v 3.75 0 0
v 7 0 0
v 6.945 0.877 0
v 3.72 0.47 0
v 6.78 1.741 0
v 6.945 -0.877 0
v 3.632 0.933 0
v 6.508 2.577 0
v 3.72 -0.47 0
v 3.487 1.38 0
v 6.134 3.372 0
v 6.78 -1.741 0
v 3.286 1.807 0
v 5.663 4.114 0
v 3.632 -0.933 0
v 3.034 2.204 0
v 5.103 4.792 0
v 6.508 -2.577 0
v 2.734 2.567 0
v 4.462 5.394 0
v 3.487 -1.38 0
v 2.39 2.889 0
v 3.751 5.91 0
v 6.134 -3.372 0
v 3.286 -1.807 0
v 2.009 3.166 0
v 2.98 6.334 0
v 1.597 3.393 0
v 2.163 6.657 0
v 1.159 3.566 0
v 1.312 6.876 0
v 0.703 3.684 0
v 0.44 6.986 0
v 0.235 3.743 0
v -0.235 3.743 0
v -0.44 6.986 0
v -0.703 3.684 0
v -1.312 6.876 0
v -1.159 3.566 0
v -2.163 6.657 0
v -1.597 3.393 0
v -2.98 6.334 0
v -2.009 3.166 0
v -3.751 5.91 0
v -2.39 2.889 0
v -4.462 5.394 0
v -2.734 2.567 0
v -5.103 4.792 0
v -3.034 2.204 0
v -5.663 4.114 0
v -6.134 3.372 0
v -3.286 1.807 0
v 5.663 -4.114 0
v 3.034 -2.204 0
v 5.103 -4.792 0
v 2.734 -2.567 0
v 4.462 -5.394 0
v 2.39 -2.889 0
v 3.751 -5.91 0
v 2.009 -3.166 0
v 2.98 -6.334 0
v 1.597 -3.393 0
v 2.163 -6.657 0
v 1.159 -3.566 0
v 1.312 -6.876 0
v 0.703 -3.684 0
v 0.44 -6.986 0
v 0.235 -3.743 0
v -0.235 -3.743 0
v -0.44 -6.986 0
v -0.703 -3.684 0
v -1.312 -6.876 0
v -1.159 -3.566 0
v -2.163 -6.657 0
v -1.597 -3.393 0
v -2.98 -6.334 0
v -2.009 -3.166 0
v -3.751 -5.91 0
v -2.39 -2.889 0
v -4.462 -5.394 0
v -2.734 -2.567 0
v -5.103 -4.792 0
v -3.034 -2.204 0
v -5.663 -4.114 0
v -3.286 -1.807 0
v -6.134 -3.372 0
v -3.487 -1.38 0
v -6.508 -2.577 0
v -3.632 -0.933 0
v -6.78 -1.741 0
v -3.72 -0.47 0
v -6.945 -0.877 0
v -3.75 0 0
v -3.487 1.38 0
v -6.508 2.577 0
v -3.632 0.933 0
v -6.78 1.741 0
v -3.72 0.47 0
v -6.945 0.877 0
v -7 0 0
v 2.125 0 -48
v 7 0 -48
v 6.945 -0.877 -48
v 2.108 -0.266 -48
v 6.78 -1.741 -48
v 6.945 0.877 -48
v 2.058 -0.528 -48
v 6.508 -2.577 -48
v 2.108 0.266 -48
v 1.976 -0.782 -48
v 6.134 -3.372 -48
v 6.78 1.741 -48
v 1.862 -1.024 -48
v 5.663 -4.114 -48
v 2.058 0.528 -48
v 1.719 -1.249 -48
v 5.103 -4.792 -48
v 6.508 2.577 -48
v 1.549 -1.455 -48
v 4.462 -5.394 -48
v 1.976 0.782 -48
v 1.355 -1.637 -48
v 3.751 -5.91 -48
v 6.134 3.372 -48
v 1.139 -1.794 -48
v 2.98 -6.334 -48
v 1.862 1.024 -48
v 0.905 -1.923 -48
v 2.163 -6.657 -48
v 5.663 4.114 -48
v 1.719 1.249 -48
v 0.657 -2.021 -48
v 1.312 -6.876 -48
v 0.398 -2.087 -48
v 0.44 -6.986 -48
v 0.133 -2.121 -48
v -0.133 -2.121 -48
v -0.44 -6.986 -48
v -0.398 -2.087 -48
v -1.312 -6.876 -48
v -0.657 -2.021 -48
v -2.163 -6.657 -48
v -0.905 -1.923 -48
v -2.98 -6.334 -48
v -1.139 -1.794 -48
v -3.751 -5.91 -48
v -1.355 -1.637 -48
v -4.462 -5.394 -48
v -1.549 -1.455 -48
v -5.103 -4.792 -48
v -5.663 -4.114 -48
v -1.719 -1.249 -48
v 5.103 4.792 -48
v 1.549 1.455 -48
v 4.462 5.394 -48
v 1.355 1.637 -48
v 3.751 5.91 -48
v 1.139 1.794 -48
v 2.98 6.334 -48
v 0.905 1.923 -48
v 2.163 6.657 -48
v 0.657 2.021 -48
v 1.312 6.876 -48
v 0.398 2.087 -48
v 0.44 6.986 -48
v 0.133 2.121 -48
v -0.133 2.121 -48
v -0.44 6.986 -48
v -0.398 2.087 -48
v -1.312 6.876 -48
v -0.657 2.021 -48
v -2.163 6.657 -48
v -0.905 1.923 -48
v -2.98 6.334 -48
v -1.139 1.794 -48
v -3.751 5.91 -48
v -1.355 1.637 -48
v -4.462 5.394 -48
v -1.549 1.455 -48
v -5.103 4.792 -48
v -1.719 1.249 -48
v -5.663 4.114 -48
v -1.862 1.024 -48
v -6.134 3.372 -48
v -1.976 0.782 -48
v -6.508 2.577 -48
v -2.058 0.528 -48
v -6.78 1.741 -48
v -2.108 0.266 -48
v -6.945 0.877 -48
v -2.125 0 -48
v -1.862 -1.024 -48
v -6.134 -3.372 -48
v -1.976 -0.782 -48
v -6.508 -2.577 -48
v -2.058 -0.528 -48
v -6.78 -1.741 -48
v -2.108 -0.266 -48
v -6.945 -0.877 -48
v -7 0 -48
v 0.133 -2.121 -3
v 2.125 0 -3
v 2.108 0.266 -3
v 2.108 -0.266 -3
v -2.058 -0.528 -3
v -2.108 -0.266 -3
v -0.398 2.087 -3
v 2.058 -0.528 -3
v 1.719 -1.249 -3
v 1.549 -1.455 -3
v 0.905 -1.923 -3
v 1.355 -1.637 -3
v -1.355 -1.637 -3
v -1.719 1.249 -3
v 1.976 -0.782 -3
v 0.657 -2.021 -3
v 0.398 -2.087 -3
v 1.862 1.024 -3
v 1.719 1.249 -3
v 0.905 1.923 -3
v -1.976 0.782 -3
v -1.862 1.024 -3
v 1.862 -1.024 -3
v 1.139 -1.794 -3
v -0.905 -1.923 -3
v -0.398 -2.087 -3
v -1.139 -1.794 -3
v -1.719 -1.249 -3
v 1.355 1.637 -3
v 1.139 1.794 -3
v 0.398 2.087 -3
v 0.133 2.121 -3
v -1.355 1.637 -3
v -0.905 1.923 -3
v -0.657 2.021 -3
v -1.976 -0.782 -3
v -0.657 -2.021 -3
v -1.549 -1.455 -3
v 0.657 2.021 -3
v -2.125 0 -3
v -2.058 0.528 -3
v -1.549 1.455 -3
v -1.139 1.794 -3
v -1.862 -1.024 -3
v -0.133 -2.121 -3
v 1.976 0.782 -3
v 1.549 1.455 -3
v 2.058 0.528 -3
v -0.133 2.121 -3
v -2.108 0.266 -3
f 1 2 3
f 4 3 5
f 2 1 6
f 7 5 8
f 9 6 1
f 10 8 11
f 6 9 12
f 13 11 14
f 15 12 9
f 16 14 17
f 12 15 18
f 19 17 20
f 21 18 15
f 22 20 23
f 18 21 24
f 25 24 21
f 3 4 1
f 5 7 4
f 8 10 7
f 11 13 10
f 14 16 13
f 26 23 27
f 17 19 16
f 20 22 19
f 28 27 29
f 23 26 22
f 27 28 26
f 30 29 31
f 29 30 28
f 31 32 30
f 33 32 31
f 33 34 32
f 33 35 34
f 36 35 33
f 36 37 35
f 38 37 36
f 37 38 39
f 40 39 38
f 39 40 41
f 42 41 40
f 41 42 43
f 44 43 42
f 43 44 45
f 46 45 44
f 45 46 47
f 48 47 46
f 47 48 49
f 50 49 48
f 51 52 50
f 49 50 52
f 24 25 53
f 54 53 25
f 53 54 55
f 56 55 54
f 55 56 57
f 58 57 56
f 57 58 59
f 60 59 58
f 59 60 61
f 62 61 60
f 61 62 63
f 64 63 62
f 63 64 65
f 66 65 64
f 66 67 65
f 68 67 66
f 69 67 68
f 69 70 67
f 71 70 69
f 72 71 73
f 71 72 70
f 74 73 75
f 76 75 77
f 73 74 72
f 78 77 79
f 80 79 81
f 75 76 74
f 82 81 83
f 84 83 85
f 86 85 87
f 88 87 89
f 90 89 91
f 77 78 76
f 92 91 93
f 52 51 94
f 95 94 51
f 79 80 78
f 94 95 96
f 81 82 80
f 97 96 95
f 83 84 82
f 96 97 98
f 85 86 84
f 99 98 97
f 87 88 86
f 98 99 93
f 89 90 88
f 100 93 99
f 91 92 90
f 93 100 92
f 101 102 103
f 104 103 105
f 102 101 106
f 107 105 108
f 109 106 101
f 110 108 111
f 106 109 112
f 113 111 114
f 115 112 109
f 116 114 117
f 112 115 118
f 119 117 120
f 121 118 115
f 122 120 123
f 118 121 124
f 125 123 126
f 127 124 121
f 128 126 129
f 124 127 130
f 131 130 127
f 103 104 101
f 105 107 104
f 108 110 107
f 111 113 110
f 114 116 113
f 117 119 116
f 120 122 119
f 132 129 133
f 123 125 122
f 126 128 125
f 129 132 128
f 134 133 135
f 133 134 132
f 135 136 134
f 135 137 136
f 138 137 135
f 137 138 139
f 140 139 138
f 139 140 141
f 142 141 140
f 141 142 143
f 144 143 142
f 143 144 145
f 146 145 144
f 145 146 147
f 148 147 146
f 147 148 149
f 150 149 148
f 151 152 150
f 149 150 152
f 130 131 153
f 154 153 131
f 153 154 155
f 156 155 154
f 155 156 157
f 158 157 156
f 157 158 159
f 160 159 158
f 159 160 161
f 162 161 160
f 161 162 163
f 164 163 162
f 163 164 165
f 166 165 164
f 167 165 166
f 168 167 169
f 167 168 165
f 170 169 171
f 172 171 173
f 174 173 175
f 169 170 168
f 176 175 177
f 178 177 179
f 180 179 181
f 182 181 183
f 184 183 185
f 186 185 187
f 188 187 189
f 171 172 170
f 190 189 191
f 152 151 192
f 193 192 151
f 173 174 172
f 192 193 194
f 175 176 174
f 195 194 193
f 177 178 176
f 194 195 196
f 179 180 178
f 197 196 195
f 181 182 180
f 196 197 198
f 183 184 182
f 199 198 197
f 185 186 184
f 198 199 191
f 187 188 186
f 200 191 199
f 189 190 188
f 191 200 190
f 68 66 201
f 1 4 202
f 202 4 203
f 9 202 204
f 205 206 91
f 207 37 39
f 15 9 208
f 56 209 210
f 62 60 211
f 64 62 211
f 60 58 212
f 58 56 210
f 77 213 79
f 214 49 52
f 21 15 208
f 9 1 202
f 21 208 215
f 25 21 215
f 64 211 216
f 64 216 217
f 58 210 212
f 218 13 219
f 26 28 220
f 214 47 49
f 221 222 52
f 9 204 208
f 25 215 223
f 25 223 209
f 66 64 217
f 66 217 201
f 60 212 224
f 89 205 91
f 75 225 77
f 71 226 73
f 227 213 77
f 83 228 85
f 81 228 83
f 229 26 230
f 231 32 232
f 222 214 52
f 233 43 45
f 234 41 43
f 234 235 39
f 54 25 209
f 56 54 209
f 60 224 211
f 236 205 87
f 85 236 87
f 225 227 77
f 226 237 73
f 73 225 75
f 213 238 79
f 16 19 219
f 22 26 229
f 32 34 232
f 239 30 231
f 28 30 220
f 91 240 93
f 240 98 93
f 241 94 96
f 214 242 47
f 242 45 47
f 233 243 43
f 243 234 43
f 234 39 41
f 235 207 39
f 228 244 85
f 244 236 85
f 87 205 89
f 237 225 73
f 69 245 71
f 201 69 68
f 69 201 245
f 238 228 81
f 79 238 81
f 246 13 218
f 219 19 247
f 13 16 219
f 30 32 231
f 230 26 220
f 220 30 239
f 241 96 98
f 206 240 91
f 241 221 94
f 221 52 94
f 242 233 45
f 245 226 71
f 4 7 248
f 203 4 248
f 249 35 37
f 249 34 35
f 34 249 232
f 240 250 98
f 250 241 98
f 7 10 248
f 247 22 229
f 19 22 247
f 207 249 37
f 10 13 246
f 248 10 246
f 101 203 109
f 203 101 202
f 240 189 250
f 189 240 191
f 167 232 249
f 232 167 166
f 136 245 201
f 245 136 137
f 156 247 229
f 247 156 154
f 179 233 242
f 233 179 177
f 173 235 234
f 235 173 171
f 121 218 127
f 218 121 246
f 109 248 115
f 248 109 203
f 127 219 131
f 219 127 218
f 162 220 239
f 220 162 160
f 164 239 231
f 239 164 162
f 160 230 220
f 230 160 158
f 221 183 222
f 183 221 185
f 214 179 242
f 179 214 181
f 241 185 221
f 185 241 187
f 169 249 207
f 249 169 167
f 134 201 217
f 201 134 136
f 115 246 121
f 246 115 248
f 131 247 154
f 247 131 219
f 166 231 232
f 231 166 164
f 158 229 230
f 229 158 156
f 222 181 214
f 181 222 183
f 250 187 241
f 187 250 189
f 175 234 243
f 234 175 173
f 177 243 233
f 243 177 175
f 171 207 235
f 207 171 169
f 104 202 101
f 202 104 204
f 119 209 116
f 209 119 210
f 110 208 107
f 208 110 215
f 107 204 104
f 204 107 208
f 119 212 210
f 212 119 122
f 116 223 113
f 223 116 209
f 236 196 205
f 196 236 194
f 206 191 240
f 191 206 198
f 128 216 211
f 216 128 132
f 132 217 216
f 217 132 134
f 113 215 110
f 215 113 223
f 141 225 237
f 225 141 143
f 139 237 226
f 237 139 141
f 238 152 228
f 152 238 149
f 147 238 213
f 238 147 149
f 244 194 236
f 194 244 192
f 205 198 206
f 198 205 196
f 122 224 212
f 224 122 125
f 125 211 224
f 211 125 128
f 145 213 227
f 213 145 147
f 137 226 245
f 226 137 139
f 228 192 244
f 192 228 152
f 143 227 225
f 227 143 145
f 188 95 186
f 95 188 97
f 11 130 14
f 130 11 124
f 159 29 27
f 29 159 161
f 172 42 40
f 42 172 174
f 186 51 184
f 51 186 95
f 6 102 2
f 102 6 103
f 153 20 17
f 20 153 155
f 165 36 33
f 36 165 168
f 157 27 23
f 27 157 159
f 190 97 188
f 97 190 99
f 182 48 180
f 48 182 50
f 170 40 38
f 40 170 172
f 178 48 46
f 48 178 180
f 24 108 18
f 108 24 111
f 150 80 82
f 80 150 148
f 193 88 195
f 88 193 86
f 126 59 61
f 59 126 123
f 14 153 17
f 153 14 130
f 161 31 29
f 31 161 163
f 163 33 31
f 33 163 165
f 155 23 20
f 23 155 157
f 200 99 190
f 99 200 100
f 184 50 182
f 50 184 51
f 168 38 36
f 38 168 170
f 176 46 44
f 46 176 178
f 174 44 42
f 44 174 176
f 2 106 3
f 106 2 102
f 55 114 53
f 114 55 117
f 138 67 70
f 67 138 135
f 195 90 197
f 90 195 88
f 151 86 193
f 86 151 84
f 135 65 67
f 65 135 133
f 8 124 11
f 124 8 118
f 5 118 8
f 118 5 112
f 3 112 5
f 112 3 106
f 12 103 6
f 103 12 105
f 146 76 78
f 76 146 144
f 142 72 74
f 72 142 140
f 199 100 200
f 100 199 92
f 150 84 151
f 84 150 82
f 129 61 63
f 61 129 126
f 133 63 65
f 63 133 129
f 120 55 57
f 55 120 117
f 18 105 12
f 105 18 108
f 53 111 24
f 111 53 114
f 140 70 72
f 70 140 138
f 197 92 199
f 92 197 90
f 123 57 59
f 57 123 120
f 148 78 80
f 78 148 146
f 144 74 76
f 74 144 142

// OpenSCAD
$fn = 50;


difference() {
	union() {
		translate(v = [0, 0, -48.0000000000]) {
			cylinder(h = 48, r = 7.0000000000);
		}
	}
	union() {
		translate(v = [0, 0, 0]) {
			rotate(a = [0, 0, 0]) {
				difference() {
					union() {
						#translate(v = [0, 0, -48.0000000000]) {
							cylinder(h = 48, r = 2.0000000000);
						}
						#translate(v = [0, 0, -3]) {
							cylinder(h = 3, r1 = 2.1250000000, r2 = 3.7500000000);
						}
						#translate(v = [0, 0, -48.0000000000]) {
							cylinder(h = 48, r = 2.1250000000);
						}
						#translate(v = [0, 0, -48.0000000000]) {
							cylinder(h = 48, r = 2.0000000000);
						}
					}
					union();
				}
			}
		}
	}
}
